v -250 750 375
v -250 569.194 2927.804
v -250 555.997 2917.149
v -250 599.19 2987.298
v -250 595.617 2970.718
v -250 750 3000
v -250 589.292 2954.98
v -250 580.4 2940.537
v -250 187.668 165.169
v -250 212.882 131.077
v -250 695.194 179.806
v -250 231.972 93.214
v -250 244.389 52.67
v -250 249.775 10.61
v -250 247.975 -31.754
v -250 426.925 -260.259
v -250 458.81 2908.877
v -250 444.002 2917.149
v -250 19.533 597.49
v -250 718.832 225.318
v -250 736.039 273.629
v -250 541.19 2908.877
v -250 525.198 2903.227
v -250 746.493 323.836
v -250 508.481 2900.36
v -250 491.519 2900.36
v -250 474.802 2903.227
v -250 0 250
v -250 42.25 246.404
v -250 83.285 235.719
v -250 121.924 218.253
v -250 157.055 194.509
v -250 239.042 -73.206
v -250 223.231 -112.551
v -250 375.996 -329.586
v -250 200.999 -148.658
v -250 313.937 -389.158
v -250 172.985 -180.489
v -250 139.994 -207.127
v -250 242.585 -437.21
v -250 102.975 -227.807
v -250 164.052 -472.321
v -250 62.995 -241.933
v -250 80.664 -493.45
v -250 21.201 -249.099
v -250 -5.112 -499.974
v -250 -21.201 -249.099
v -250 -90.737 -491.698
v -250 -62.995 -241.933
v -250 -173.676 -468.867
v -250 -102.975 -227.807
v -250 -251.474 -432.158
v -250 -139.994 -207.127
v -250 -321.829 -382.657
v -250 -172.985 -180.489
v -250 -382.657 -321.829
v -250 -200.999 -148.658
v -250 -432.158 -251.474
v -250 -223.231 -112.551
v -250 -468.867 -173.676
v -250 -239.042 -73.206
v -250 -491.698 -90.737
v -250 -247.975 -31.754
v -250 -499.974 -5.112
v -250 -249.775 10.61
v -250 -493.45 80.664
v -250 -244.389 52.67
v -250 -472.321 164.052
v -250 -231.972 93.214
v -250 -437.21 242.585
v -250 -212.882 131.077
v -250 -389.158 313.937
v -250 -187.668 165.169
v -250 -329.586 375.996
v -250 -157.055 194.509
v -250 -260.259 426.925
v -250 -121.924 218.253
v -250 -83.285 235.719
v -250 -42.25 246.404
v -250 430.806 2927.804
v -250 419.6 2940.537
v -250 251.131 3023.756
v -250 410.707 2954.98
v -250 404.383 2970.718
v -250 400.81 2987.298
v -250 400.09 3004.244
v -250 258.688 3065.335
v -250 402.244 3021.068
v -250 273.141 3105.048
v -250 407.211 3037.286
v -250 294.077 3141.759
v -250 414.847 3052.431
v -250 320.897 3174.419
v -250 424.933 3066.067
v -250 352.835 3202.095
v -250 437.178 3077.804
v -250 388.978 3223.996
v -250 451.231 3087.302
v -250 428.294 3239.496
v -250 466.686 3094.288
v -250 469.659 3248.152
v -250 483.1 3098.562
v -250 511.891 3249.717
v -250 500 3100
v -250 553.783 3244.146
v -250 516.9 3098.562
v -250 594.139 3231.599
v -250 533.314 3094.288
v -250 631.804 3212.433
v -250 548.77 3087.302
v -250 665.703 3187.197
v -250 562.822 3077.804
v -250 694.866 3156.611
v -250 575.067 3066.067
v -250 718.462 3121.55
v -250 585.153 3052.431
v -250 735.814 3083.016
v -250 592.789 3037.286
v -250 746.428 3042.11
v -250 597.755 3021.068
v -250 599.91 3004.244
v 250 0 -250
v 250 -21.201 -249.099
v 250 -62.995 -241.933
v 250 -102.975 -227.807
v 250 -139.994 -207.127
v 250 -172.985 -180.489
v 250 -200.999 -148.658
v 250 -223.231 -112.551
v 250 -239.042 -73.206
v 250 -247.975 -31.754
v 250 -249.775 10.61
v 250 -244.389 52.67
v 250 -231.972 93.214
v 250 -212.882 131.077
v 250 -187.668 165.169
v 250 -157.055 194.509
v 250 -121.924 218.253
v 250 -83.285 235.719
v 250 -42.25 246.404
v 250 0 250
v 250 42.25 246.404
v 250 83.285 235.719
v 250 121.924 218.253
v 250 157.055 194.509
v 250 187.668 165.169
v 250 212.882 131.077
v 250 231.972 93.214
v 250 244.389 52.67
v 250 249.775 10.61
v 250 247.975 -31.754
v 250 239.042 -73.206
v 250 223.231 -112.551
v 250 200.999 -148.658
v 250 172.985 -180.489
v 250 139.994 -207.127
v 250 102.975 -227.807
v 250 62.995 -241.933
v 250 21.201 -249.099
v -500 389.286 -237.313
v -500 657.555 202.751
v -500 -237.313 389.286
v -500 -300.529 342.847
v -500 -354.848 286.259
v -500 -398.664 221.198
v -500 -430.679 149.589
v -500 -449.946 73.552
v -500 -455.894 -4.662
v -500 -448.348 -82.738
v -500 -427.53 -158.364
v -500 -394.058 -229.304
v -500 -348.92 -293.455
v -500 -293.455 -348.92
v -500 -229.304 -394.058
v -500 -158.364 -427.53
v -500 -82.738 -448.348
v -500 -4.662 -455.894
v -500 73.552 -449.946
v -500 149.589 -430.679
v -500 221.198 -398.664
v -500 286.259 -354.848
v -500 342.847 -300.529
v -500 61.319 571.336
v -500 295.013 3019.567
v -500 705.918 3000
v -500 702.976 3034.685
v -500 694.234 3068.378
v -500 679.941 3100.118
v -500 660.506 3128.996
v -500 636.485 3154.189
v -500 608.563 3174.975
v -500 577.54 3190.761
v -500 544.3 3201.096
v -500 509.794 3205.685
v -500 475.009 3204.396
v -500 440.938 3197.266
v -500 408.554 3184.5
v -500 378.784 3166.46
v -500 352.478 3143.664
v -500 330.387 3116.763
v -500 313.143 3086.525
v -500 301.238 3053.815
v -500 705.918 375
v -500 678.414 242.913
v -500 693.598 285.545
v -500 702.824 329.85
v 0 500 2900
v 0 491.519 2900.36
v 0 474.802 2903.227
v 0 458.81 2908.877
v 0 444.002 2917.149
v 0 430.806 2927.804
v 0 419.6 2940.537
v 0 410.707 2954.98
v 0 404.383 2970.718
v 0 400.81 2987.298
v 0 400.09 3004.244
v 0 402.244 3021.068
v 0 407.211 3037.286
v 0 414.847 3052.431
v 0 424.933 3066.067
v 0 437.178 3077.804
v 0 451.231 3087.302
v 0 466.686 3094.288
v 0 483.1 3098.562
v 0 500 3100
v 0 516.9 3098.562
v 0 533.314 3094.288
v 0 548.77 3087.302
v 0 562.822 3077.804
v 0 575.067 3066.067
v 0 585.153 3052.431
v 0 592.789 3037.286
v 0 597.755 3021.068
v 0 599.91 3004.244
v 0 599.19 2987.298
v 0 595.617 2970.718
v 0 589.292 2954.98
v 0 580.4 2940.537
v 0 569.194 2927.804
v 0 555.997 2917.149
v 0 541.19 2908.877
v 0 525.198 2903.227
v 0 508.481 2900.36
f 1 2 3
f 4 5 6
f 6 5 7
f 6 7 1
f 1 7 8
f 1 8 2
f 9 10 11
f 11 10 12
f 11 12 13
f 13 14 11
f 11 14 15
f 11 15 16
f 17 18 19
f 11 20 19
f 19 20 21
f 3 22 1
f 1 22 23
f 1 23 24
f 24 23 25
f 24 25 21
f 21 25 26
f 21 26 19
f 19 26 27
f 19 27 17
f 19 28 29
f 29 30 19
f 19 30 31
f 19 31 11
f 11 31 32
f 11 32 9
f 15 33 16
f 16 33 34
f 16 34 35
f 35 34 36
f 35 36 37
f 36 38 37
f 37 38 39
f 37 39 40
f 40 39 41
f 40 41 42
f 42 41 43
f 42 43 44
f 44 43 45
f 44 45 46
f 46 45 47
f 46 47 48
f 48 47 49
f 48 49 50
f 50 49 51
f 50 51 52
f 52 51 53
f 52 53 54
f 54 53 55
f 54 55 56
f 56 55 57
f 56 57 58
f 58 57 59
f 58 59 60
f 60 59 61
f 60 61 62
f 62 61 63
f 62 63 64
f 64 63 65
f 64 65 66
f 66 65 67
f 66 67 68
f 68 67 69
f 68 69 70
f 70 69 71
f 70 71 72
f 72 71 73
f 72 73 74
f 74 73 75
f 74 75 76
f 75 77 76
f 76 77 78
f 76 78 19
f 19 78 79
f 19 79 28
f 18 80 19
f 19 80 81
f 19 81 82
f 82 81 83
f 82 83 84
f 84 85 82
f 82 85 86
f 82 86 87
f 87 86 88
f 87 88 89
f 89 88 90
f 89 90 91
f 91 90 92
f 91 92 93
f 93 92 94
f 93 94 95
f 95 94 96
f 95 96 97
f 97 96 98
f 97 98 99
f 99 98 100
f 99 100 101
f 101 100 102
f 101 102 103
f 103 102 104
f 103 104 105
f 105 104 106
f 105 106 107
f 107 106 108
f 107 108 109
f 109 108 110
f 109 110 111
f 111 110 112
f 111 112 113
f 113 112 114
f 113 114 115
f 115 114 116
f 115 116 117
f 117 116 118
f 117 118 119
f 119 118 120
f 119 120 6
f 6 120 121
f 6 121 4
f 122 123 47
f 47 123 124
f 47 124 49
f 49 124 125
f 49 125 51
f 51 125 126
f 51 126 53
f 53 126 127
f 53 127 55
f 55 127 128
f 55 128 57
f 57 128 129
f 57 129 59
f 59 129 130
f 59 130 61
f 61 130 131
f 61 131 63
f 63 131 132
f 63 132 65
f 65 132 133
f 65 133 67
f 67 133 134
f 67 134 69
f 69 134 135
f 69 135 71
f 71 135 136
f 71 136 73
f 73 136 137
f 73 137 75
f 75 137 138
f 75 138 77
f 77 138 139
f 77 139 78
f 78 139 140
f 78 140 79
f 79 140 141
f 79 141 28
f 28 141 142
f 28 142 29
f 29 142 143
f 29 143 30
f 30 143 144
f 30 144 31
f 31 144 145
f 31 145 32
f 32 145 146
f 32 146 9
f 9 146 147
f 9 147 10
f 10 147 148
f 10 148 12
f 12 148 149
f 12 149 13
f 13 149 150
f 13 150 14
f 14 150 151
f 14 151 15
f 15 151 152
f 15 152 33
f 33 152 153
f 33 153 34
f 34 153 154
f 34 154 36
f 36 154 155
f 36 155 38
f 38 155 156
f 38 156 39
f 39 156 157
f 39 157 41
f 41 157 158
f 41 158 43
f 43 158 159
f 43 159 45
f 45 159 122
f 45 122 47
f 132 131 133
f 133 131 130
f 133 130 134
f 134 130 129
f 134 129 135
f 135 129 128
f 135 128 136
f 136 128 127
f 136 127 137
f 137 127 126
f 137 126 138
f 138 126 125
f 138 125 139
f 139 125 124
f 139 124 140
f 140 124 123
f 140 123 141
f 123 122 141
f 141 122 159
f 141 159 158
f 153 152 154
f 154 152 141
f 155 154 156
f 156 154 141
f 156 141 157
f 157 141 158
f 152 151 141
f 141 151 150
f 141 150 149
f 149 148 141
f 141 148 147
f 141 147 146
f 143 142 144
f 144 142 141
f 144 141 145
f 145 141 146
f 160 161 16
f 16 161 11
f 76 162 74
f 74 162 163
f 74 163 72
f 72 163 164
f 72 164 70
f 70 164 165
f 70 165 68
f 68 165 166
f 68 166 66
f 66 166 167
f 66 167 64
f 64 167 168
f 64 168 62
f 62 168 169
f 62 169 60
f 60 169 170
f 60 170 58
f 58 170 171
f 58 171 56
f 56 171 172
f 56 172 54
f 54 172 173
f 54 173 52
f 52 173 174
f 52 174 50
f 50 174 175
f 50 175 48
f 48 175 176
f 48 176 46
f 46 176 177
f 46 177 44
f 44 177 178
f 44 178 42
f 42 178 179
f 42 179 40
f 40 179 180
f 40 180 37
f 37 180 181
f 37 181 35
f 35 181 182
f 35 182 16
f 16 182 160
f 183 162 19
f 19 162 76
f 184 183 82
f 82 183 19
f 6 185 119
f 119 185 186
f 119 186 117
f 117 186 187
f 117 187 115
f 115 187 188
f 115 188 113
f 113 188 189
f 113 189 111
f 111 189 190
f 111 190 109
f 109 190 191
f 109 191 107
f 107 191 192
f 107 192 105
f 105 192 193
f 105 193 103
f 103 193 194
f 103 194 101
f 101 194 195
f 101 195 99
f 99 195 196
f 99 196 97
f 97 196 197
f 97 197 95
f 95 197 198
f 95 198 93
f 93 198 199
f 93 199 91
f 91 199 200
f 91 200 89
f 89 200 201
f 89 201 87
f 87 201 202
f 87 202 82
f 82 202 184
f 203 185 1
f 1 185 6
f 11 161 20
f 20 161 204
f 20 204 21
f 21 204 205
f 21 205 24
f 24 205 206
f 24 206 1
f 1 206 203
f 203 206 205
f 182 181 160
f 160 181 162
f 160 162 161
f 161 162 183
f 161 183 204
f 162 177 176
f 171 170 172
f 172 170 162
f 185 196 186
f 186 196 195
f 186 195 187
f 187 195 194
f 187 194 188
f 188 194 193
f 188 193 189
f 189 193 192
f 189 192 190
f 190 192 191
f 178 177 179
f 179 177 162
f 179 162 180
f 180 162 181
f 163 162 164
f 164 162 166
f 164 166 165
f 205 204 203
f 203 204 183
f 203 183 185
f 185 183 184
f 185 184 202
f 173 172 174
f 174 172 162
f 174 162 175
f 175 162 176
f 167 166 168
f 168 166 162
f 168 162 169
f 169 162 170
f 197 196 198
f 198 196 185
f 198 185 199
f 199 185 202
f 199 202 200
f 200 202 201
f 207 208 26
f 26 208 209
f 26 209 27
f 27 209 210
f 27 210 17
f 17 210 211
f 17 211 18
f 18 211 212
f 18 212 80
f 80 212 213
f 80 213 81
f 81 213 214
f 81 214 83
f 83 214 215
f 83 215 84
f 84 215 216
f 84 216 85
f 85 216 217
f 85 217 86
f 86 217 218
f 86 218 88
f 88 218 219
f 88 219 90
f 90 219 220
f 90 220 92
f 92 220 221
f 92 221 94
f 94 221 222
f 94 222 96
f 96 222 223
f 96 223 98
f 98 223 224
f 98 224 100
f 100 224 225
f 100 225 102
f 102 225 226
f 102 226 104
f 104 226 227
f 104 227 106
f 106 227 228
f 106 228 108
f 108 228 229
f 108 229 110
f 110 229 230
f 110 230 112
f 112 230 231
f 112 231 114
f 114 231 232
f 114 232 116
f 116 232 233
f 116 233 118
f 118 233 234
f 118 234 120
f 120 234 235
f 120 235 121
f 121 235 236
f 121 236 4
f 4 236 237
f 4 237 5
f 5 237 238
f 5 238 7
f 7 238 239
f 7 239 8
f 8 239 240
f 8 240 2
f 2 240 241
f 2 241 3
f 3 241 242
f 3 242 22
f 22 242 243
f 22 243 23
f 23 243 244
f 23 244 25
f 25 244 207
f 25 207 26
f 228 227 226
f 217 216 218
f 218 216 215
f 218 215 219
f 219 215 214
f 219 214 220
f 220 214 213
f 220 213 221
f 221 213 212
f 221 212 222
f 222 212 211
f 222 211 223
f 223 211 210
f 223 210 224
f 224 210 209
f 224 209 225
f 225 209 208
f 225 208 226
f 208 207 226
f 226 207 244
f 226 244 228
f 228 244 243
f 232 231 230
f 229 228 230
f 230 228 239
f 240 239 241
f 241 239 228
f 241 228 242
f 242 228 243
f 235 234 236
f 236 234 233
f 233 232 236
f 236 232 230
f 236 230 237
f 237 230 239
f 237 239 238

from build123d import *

# Parameters (mm, degrees)
SKETCH1_R           = 250
BOSS_EXTRUDE1_DEPTH = 250
BOSS_EXTRUDE4_DEPTH = 250
BOSS_EXTRUDE4_TAPER = 10
SKETCH5_R           = 100
BOSS_EXTRUDE6_DEPTH = 250


with BuildPart() as part:
    # Sketch1 → Boss-Extrude1 (new, symmetric)
    with BuildSketch(Plane(origin=(0, 0, 0), x_dir=(0, 0, -1), z_dir=(1, 0, 0))):
        Circle(SKETCH1_R)
    extrude(amount=BOSS_EXTRUDE1_DEPTH, both=True)

    # Sketch3 → Boss-Extrude4 (add)
    with BuildSketch(Plane.ZY.offset(250)):
        with BuildLine():
            ThreePointArc((-260.258802135, 426.925468801), (-353.553390593, -353.553390593), (426.925468801, -260.258802135))
            Line((426.925468801, -260.258802135), (597.489931153, 19.533129792))
            Line((597.489931153, 19.533129792), (3023.755656109, 251.131221719))
            ThreePointArc((3023.755656109, 251.131221719), (3249.717034431, 511.891287354), (3000, 750))
            Line((3000, 750), (375, 750))
            ThreePointArc((375, 750), (273.628870235, 736.038632351), (179.805898399, 695.194101601))
            Line((179.805898399, 695.194101601), (-260.258802135, 426.925468801))
        make_face()
    extrude(amount=BOSS_EXTRUDE4_DEPTH, taper=BOSS_EXTRUDE4_TAPER)

    # Sketch5 → Boss-Extrude6 (add)
    with BuildSketch(Plane(origin=(-250, 0, 0), x_dir=(0, 0, -1), z_dir=(1, 0, 0))):
        with Locations(Location((-3000, 500, 0), (0, 0, 180))):
            Circle(SKETCH5_R)
    extrude(amount=BOSS_EXTRUDE6_DEPTH)


solid = part.part
